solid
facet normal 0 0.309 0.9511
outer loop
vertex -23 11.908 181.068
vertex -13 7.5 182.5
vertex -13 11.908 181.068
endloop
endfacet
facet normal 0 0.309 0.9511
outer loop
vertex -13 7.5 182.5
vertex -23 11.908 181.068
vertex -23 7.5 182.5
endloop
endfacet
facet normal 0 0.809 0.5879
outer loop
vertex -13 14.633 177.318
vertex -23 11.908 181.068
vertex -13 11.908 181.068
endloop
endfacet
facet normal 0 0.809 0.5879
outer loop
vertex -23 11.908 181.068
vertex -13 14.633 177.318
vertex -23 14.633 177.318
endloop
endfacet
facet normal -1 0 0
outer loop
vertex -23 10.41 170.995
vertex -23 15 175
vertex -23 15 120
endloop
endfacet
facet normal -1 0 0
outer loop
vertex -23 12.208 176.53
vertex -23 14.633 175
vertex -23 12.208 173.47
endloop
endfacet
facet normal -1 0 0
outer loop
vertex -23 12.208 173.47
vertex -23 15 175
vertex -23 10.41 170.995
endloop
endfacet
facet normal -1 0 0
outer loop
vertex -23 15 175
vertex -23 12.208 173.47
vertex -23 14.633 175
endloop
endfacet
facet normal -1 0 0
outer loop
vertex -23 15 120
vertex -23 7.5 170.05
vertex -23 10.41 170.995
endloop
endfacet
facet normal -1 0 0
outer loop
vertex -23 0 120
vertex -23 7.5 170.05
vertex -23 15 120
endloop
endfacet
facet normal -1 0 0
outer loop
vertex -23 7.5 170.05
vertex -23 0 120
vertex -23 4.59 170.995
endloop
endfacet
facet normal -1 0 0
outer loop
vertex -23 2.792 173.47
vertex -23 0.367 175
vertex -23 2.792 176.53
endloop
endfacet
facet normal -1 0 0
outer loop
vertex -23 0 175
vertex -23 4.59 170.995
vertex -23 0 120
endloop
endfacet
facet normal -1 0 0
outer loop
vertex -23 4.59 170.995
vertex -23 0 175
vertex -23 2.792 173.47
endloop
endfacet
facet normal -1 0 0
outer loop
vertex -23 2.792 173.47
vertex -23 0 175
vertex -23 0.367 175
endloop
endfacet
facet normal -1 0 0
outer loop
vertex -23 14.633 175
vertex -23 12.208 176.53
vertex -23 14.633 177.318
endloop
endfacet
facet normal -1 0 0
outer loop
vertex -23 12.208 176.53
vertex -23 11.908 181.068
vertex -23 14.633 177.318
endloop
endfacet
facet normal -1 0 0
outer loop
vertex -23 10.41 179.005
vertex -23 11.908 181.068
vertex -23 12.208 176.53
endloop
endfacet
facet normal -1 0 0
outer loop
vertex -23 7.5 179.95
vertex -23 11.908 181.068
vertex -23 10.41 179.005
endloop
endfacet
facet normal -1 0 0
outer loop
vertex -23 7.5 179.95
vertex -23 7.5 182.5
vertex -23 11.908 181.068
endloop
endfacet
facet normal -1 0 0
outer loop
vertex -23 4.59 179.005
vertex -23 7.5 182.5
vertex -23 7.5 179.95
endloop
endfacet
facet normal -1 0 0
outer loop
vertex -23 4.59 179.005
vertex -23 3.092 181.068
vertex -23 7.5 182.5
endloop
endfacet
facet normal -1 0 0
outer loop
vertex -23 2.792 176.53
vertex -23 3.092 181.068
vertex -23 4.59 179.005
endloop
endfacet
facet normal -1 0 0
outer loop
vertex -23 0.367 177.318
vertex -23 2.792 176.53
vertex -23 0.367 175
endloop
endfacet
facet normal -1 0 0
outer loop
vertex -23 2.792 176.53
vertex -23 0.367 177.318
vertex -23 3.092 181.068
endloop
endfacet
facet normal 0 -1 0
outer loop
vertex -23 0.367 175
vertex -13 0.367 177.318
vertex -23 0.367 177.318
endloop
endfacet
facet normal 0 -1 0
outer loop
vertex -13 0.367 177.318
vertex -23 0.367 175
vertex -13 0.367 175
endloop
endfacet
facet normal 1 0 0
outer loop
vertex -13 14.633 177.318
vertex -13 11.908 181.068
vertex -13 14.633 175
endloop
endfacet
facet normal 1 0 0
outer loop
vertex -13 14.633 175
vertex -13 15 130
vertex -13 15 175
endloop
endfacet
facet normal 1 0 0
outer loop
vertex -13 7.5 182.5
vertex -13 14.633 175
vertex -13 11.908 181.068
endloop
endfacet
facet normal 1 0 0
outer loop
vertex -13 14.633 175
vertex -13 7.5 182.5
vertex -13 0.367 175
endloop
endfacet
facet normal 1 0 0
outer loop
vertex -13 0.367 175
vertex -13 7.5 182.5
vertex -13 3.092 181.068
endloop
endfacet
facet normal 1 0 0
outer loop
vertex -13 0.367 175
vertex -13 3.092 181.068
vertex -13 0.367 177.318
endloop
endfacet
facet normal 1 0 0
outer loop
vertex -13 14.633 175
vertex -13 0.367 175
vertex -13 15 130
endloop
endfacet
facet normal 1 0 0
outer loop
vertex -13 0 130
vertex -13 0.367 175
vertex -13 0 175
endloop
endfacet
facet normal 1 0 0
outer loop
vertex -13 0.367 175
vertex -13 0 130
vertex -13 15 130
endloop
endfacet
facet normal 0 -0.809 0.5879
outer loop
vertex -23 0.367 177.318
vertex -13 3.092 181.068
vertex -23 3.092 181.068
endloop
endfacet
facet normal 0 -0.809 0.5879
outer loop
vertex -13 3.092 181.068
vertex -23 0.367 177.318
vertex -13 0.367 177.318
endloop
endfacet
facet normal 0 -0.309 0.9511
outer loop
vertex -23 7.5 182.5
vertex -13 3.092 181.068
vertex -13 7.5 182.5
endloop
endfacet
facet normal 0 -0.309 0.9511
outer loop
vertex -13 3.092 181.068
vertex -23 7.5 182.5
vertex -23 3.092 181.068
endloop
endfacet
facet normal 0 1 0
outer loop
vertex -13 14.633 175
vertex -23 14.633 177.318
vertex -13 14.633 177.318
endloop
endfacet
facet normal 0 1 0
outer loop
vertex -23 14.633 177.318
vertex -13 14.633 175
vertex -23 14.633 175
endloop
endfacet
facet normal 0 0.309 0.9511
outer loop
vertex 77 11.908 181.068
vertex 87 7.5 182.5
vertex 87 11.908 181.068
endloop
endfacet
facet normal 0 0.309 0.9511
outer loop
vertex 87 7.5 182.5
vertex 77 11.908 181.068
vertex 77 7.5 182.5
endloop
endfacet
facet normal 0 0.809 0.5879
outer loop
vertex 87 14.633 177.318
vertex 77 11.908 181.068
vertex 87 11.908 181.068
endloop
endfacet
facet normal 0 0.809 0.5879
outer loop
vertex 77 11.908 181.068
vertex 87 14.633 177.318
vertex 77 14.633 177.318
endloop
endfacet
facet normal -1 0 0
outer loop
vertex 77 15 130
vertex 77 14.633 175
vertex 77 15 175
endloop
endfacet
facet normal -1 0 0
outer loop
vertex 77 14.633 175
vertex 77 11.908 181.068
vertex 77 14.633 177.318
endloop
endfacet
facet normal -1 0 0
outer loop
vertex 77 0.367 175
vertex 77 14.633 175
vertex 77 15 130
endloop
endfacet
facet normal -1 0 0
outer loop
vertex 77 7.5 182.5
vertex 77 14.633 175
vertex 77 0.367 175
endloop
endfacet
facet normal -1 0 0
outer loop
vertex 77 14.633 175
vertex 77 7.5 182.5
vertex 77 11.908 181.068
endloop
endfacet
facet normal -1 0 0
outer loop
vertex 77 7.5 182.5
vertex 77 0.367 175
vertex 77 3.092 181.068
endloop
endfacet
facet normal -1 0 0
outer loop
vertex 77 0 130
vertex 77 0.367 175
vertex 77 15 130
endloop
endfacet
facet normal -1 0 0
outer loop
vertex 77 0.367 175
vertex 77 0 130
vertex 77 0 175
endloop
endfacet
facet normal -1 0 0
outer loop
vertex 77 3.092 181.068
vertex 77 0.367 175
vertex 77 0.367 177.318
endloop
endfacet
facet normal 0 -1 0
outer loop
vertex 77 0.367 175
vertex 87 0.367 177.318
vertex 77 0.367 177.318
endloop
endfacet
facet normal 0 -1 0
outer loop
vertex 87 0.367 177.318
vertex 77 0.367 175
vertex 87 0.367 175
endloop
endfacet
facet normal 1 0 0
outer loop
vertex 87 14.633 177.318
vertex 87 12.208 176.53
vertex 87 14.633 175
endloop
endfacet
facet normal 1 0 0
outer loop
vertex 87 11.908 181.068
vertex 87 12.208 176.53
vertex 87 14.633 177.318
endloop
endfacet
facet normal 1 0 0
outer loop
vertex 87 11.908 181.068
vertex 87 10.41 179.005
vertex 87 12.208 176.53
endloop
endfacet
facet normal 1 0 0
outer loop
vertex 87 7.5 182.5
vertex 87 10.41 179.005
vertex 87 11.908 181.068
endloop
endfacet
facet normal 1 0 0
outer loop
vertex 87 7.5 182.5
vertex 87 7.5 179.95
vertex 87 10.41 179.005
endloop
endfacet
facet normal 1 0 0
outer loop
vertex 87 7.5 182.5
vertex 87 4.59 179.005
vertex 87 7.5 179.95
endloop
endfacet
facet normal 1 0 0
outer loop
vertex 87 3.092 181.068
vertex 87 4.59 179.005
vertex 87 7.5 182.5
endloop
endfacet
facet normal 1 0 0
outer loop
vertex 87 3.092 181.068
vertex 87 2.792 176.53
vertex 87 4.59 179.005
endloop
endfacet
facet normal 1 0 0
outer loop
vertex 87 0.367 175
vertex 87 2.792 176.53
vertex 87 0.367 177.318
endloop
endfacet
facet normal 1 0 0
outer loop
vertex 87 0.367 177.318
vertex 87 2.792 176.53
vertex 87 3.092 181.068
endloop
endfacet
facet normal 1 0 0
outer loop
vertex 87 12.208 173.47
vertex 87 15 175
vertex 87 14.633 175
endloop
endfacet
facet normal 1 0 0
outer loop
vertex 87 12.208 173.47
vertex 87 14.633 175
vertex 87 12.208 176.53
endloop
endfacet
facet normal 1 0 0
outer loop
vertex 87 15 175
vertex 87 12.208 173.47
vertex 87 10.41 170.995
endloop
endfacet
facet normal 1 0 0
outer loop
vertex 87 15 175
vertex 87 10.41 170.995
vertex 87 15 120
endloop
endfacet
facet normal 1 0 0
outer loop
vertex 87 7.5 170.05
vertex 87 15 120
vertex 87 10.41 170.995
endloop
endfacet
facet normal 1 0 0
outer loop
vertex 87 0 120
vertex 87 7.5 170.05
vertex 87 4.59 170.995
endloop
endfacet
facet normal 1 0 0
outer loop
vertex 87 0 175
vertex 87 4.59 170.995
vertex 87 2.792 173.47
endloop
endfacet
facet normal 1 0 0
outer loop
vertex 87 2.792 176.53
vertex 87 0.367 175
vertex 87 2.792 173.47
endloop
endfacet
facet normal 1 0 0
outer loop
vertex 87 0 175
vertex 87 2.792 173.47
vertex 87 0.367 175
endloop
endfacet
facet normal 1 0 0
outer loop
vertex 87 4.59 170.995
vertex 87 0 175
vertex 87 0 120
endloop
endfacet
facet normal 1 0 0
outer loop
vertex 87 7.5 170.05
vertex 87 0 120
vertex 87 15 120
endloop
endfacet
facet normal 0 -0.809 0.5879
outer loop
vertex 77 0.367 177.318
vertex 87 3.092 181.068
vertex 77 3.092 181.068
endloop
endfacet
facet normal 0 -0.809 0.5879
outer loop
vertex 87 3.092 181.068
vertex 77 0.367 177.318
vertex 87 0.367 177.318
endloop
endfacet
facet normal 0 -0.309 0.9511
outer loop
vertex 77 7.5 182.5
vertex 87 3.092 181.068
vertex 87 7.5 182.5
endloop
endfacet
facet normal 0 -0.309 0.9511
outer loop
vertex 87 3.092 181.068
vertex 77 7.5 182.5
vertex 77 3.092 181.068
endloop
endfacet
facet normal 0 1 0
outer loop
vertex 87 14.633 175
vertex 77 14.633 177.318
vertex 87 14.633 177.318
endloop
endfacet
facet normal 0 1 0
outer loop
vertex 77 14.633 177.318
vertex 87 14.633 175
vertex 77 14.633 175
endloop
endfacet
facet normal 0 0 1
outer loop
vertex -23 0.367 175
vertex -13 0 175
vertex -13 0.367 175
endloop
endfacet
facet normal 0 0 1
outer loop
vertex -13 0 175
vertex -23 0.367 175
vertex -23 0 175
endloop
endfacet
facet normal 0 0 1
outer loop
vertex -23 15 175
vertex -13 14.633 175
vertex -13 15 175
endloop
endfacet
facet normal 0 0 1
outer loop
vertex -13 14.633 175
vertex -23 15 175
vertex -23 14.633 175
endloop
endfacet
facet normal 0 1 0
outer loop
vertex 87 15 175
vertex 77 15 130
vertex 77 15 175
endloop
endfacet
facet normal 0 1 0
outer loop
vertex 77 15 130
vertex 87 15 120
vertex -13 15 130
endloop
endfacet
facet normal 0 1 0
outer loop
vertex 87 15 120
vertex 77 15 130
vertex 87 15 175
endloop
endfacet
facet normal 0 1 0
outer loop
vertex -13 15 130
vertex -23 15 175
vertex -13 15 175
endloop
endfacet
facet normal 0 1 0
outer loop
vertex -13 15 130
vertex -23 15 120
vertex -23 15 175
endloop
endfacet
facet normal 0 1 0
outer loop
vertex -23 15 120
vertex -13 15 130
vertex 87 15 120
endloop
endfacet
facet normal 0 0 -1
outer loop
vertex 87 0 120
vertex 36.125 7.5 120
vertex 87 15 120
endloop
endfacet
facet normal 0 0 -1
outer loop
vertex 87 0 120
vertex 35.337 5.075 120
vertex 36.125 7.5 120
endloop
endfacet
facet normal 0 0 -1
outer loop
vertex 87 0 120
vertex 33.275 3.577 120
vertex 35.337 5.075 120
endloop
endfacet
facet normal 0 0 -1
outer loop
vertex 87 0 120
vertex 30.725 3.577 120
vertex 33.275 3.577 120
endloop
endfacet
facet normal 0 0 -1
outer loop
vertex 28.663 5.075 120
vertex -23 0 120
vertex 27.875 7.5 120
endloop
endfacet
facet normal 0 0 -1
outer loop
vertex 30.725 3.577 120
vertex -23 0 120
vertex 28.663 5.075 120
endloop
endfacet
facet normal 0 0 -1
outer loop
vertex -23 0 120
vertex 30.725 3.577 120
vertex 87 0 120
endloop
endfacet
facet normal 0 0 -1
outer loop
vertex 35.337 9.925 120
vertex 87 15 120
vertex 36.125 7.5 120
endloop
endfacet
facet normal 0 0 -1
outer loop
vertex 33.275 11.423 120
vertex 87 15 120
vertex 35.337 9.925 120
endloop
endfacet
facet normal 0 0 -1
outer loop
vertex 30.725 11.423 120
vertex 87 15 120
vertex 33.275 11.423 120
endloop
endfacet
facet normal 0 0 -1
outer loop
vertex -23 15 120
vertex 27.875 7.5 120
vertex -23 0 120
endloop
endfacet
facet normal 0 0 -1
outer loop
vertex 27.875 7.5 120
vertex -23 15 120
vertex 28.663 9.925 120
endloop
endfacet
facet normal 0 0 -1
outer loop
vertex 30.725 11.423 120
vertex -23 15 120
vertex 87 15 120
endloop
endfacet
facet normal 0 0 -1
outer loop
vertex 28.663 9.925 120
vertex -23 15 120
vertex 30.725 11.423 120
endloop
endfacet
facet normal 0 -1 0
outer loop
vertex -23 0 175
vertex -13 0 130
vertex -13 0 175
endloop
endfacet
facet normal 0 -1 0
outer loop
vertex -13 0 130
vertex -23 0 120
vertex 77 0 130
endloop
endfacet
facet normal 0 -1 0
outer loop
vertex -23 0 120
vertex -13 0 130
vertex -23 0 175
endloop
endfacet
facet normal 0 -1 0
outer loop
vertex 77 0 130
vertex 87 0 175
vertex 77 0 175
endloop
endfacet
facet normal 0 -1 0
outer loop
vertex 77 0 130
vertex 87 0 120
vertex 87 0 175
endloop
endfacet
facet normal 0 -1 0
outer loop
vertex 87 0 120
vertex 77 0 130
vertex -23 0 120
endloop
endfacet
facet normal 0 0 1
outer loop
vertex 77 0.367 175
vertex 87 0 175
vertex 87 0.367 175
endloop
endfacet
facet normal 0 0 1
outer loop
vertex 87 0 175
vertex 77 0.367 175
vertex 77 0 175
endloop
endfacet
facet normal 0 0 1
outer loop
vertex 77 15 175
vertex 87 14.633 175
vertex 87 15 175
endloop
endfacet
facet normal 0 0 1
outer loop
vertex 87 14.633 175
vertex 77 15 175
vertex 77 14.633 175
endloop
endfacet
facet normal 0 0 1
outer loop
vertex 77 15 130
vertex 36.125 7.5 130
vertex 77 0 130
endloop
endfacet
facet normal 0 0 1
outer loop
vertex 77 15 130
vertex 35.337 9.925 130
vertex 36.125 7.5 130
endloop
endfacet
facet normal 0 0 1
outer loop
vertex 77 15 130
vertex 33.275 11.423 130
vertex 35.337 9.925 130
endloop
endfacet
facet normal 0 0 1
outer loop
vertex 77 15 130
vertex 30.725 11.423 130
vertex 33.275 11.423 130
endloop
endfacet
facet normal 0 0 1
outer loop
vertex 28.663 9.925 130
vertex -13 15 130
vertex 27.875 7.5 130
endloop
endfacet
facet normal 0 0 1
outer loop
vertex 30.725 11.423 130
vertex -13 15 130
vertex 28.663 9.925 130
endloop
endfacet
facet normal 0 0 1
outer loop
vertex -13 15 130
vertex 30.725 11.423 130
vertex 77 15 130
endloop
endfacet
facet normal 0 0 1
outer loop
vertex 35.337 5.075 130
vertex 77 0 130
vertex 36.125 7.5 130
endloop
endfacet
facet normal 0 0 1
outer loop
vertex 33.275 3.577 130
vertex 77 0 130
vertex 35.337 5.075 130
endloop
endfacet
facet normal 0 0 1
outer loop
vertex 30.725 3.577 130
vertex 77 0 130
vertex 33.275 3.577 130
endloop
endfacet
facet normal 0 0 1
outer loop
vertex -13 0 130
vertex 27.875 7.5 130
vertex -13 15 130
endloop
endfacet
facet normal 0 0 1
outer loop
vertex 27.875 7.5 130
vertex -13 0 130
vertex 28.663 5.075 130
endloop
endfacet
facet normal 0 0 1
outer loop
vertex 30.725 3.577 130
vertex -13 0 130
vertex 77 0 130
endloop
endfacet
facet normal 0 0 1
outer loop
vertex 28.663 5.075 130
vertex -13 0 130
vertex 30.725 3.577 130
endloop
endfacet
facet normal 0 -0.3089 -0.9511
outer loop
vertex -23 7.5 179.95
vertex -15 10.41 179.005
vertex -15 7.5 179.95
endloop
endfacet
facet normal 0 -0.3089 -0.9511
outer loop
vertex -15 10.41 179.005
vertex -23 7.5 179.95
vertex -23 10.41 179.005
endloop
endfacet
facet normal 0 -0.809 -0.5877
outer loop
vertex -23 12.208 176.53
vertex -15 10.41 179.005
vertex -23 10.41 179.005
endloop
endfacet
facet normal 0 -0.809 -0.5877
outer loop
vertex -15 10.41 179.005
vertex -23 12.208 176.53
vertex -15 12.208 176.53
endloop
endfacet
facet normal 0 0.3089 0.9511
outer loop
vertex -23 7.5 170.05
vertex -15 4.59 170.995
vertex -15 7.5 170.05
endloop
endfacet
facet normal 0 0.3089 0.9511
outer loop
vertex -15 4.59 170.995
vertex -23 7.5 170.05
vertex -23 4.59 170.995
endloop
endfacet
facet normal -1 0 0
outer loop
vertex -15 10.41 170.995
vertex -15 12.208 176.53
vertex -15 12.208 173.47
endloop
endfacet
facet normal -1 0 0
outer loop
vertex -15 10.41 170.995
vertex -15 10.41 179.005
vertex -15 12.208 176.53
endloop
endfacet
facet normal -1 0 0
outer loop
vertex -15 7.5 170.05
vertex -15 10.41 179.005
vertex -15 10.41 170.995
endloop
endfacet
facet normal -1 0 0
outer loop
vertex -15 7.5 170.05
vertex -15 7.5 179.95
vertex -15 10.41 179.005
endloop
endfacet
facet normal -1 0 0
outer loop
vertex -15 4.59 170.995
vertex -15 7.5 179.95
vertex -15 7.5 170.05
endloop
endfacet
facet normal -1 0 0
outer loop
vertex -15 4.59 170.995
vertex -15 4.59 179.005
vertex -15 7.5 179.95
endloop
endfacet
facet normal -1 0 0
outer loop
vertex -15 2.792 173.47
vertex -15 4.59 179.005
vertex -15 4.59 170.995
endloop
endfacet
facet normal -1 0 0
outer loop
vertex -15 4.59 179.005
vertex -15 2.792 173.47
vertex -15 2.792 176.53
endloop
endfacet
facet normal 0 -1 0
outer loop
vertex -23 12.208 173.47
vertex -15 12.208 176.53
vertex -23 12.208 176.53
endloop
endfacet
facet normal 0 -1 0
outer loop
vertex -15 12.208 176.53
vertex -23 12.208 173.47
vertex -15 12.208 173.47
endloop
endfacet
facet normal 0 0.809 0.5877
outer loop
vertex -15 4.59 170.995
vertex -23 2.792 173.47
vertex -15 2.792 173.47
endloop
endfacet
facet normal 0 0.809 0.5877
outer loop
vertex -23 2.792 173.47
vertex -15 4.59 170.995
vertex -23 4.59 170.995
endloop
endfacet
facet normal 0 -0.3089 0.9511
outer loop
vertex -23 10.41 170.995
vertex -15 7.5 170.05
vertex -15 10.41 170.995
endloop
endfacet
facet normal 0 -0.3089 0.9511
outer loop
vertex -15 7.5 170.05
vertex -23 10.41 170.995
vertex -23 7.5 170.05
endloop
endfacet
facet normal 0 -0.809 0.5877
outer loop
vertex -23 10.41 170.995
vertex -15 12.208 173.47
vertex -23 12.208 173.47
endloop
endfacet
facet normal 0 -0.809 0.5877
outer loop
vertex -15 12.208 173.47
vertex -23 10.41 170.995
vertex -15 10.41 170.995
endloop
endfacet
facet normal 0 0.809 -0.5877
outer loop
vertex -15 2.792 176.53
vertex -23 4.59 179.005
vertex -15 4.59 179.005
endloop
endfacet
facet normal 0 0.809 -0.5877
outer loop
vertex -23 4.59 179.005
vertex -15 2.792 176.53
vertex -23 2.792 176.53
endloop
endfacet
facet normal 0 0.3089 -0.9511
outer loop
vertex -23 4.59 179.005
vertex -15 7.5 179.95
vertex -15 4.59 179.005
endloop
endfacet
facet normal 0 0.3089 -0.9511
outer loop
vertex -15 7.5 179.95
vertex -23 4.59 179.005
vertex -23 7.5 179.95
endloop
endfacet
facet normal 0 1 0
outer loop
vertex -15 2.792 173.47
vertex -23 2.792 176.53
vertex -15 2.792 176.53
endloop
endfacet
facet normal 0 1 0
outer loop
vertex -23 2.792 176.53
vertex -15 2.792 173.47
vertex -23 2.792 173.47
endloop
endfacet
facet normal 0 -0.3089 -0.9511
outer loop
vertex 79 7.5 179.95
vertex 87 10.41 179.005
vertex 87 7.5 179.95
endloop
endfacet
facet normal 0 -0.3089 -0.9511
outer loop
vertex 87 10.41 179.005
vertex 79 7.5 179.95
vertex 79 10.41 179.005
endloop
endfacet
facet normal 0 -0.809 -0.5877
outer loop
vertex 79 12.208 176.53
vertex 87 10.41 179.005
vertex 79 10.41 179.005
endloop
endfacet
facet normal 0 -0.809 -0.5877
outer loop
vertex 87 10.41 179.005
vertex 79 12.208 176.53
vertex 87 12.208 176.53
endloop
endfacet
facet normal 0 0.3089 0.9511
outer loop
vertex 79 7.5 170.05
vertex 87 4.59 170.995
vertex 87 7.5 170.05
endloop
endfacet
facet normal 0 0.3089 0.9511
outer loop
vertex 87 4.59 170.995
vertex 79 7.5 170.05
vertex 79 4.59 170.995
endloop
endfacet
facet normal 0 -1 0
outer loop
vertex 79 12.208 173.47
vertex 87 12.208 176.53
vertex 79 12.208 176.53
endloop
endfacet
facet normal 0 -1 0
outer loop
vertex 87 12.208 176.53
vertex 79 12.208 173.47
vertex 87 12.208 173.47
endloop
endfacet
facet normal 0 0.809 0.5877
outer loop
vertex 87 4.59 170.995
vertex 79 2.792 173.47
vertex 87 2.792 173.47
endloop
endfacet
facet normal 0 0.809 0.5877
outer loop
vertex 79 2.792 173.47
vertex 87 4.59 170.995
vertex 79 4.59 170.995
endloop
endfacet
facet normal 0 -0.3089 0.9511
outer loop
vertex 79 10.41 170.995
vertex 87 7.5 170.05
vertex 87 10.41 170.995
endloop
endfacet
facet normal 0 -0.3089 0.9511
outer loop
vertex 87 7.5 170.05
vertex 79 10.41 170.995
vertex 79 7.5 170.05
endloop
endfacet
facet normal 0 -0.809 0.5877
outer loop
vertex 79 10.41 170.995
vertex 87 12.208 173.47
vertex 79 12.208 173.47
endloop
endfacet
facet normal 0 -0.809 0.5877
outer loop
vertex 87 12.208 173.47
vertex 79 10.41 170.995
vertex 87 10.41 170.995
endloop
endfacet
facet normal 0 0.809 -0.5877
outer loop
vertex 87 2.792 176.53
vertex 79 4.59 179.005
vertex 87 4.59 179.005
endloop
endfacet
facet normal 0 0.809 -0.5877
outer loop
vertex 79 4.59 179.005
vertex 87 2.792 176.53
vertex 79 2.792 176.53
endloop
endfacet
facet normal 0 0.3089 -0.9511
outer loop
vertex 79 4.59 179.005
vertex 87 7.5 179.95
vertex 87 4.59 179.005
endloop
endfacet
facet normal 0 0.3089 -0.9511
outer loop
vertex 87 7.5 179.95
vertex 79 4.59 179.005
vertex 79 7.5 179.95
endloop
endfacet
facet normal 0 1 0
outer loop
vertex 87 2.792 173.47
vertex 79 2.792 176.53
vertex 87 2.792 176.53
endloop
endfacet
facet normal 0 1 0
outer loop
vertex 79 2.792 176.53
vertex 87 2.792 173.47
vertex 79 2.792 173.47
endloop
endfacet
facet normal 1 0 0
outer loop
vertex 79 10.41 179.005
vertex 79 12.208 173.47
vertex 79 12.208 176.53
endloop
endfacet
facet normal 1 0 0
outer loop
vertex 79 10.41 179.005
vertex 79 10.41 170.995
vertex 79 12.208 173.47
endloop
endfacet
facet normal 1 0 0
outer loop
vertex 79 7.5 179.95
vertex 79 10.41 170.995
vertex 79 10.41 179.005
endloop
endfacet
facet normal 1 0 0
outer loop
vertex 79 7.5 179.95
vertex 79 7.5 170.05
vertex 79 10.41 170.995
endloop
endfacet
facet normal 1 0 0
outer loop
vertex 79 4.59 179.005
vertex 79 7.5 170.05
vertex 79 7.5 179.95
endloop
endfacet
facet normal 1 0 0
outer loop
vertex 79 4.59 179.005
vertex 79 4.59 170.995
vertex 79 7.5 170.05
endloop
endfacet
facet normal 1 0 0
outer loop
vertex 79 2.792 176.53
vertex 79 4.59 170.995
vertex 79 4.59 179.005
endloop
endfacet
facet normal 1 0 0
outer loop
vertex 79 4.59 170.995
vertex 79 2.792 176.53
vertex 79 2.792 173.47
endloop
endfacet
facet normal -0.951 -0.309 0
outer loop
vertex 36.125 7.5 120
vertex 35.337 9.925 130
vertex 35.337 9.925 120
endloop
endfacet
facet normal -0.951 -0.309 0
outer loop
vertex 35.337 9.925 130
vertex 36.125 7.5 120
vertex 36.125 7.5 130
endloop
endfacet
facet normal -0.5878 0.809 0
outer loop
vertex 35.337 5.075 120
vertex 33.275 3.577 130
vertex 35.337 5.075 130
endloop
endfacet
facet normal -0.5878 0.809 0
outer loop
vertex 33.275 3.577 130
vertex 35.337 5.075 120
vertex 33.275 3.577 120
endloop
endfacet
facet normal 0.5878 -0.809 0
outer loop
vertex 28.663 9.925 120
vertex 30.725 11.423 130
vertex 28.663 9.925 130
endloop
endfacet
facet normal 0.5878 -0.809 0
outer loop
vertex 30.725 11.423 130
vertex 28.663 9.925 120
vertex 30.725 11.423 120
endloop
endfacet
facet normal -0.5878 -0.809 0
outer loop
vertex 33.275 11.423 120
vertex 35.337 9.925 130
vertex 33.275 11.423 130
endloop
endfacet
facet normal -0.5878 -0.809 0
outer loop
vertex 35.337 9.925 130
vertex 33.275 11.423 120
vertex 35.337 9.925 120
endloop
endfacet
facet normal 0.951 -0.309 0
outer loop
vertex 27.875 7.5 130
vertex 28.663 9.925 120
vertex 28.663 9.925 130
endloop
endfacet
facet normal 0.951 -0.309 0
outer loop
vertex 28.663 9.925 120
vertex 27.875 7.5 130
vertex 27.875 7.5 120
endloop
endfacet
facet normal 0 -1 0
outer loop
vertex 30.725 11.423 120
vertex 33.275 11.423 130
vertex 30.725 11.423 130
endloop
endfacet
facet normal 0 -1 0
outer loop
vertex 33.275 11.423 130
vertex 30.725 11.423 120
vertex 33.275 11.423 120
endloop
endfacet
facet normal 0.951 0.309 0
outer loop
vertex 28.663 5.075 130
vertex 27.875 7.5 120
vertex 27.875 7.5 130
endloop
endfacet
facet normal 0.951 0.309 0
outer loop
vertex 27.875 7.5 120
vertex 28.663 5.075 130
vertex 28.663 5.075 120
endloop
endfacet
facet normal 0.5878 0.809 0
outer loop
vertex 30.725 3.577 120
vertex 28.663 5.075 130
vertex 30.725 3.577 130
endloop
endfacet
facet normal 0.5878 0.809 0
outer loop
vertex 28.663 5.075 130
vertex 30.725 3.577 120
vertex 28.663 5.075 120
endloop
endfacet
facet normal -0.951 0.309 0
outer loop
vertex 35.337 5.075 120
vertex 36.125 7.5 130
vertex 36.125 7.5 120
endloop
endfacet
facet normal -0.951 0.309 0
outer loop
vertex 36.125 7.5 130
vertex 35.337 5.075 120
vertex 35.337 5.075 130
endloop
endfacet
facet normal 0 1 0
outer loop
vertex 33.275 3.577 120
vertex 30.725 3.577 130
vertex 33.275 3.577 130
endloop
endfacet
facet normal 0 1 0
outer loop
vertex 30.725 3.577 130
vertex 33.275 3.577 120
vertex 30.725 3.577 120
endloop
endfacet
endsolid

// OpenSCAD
res=10;

d=9.5;
base_x=1;
base_y=1;
pilar_x=15;
pilar_y=15;
pilar_z=160;
base_fixa_x=2*6.8+2*25.2;
base_fixa_y=15;
base_fixa_z=2;

entre_imas=90;
enc_cil_ima=9.9/2;
fixa_ima=1;
fixa_ima_z=1;


translate([(base_fixa_x-pilar_x)/2-(entre_imas-pilar_x)/2,0,pilar_z]){
    difference(){
        translate([0,0,0]){
            translate([0,15/2,15])rotate([0,-90,0])cylinder(10,15/2,15/2,$fn=res);
            translate([entre_imas+10,15/2,15])rotate([0,-90,0])cylinder(10,15/2,15/2,$fn=res);
            translate([-10,0,-40])cube([10,15,15+40]);
            translate([entre_imas,0,-40])cube([10,15,15+40]);
            translate([-10,0,-40])cube([20+entre_imas,15,10]);
        }
        #translate([-2,15/2,15])rotate([0,-90,0])cylinder(10,9.9/2,9.9/2,$fn=res);
        #translate([entre_imas+10+2,15/2,15])rotate([0,-90,0])cylinder(10,9.9/2,9.9/2,$fn=res);
        #translate([entre_imas/2,15/2,-40])cylinder(10,4+0.125,4+0.125,$fn=res);
    }
}
